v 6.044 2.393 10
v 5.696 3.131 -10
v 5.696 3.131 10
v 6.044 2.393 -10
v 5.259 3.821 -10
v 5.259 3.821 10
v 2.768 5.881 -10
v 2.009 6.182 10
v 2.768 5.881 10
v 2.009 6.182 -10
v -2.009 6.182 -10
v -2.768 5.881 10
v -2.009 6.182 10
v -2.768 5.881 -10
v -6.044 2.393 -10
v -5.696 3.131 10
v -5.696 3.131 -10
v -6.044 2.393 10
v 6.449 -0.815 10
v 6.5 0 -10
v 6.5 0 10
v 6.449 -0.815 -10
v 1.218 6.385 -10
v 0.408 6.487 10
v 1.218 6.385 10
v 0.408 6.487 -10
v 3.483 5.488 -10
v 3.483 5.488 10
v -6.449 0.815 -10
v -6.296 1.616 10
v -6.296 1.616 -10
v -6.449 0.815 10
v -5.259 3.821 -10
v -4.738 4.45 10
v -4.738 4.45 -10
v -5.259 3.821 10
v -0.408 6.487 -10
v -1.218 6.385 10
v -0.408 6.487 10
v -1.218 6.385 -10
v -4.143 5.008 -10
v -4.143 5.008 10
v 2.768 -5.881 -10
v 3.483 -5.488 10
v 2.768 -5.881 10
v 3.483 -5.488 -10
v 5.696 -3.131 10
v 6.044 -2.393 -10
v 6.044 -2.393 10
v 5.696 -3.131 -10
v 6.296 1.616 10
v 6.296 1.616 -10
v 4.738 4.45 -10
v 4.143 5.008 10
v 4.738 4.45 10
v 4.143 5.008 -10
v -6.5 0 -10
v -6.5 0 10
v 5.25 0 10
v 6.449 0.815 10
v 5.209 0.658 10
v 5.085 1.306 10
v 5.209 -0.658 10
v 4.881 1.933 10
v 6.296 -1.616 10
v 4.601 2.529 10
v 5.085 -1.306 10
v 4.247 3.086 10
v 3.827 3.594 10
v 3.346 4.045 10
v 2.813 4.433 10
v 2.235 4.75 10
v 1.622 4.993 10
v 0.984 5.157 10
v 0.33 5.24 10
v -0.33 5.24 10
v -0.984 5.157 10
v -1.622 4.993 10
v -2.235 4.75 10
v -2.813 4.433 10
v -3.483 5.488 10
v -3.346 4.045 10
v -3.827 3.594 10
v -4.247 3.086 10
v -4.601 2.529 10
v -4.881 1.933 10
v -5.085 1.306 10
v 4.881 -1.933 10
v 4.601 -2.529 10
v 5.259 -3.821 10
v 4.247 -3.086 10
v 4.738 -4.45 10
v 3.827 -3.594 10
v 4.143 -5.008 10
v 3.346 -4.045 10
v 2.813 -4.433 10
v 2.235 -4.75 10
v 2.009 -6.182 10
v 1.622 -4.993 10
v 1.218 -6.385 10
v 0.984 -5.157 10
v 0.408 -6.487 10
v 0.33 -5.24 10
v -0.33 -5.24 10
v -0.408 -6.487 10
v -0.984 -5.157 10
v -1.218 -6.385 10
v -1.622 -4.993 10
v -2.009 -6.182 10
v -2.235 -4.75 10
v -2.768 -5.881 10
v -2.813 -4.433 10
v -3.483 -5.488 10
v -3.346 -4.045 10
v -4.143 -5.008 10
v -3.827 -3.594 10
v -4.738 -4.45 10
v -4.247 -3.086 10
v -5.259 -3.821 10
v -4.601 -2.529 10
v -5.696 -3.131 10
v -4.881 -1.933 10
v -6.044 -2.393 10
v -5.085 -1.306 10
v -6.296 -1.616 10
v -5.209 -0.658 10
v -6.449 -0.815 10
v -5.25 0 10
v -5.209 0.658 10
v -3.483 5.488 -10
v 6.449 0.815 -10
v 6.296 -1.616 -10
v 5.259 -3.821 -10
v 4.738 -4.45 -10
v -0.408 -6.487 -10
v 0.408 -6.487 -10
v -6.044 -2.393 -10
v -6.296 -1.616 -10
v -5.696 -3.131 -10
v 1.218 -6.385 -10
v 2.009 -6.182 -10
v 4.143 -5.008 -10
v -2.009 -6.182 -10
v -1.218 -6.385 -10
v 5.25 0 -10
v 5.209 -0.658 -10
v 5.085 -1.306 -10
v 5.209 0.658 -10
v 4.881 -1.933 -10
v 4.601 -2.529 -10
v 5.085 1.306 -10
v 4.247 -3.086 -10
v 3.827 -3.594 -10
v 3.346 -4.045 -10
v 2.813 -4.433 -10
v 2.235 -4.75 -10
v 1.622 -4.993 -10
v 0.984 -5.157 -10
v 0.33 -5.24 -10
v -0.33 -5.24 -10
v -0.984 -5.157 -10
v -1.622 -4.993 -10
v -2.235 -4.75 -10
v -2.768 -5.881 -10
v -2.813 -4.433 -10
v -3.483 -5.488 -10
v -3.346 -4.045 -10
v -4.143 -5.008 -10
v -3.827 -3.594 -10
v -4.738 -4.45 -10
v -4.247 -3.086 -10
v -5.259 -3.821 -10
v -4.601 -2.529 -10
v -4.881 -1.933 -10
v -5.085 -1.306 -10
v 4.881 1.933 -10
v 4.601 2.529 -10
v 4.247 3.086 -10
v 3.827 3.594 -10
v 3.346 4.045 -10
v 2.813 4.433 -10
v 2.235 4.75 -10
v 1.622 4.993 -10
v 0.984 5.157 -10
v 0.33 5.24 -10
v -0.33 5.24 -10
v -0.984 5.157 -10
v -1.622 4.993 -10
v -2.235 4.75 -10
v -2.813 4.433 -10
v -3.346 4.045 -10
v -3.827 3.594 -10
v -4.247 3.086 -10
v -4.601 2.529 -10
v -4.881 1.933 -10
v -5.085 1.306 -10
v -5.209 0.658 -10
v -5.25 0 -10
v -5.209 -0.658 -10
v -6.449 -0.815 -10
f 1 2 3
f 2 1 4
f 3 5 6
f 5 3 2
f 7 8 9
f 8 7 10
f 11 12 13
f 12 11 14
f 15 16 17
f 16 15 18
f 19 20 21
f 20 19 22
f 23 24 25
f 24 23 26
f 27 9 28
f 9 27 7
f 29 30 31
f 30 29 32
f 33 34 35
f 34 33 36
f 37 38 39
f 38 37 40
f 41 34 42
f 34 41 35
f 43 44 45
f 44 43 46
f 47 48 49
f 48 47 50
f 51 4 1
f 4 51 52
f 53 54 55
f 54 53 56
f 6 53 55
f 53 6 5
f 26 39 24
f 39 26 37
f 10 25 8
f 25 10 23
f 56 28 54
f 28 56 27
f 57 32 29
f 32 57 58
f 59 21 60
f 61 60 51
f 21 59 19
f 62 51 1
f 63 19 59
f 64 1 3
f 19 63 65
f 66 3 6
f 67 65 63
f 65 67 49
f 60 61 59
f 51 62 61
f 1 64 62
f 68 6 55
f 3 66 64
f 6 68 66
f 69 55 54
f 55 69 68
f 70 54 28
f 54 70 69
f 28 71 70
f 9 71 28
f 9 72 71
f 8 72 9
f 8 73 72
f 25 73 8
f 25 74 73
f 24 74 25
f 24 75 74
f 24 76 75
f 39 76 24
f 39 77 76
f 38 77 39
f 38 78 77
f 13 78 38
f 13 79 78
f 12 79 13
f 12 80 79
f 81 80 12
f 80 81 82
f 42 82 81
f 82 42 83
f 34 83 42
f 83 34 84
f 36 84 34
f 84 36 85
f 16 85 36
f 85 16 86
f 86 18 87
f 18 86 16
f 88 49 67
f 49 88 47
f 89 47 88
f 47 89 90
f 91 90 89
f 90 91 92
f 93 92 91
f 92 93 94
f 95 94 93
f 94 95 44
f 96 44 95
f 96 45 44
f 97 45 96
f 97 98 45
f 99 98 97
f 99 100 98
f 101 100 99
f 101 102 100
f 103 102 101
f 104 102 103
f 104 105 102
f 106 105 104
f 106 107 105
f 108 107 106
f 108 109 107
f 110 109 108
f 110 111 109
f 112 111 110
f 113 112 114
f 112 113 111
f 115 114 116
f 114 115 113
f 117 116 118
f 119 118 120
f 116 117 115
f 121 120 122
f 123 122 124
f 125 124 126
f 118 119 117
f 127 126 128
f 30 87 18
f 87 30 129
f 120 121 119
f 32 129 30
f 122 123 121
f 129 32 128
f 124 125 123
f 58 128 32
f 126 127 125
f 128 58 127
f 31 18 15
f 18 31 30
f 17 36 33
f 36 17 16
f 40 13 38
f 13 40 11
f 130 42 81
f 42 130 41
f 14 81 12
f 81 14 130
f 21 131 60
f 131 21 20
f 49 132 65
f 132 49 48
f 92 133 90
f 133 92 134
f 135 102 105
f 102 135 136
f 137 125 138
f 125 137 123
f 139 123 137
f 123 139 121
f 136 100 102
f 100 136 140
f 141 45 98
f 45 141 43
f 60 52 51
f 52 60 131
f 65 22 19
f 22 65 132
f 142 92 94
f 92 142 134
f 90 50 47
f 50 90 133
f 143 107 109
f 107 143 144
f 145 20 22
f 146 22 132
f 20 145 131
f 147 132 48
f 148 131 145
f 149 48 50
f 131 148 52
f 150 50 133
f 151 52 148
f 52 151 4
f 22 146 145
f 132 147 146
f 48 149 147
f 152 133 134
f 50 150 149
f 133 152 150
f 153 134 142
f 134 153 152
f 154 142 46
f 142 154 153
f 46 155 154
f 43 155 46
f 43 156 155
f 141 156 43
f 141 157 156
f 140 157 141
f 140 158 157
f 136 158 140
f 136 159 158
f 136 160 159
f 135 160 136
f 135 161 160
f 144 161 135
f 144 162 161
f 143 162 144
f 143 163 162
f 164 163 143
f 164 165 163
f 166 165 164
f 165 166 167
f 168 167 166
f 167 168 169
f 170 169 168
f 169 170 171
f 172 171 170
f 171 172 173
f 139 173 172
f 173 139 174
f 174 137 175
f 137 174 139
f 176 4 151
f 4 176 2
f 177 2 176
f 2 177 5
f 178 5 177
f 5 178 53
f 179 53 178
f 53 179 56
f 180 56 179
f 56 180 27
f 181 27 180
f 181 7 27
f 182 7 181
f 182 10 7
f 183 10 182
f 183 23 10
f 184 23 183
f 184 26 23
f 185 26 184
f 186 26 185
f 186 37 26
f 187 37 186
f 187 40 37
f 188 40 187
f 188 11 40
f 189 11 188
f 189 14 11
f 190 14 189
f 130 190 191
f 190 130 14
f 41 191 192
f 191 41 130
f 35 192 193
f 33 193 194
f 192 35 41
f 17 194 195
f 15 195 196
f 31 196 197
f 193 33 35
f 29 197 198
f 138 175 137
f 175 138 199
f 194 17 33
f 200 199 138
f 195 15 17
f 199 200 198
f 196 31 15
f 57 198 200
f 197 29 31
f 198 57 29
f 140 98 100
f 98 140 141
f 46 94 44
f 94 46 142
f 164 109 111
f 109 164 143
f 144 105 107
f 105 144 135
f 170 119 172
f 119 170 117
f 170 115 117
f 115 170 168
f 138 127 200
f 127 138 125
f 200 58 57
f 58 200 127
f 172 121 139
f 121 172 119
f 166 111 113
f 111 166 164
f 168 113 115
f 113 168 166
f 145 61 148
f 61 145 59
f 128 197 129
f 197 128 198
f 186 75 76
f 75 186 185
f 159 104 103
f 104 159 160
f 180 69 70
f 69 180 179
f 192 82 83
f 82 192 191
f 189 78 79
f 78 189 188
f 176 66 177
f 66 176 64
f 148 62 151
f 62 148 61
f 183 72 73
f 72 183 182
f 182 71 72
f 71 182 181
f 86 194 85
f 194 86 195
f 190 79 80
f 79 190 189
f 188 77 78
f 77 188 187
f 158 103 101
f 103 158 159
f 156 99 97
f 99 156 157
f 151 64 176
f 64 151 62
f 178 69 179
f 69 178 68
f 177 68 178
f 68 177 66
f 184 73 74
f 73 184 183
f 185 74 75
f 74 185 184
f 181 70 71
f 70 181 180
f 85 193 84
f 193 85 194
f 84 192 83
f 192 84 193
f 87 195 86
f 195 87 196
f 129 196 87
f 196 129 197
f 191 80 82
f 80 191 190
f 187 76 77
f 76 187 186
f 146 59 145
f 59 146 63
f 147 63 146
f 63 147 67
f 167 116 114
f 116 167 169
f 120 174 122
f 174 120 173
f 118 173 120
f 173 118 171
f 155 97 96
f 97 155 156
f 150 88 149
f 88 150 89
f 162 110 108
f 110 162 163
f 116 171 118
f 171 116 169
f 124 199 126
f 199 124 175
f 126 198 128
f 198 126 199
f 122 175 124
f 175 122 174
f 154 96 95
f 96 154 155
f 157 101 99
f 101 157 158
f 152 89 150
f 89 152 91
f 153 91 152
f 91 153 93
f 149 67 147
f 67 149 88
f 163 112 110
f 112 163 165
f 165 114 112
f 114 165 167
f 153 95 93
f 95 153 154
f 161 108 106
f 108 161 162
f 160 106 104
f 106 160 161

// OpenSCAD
$fn = 50;


difference() {
	union() {
		translate(v = [0, 0, -10.0000000000]) {
			cylinder(h = 20, r = 6.5000000000);
		}
	}
	union() {
		translate(v = [0, 0, -100.0000000000]) {
			cylinder(h = 200, r = 5.2500000000);
		}
	}
}
